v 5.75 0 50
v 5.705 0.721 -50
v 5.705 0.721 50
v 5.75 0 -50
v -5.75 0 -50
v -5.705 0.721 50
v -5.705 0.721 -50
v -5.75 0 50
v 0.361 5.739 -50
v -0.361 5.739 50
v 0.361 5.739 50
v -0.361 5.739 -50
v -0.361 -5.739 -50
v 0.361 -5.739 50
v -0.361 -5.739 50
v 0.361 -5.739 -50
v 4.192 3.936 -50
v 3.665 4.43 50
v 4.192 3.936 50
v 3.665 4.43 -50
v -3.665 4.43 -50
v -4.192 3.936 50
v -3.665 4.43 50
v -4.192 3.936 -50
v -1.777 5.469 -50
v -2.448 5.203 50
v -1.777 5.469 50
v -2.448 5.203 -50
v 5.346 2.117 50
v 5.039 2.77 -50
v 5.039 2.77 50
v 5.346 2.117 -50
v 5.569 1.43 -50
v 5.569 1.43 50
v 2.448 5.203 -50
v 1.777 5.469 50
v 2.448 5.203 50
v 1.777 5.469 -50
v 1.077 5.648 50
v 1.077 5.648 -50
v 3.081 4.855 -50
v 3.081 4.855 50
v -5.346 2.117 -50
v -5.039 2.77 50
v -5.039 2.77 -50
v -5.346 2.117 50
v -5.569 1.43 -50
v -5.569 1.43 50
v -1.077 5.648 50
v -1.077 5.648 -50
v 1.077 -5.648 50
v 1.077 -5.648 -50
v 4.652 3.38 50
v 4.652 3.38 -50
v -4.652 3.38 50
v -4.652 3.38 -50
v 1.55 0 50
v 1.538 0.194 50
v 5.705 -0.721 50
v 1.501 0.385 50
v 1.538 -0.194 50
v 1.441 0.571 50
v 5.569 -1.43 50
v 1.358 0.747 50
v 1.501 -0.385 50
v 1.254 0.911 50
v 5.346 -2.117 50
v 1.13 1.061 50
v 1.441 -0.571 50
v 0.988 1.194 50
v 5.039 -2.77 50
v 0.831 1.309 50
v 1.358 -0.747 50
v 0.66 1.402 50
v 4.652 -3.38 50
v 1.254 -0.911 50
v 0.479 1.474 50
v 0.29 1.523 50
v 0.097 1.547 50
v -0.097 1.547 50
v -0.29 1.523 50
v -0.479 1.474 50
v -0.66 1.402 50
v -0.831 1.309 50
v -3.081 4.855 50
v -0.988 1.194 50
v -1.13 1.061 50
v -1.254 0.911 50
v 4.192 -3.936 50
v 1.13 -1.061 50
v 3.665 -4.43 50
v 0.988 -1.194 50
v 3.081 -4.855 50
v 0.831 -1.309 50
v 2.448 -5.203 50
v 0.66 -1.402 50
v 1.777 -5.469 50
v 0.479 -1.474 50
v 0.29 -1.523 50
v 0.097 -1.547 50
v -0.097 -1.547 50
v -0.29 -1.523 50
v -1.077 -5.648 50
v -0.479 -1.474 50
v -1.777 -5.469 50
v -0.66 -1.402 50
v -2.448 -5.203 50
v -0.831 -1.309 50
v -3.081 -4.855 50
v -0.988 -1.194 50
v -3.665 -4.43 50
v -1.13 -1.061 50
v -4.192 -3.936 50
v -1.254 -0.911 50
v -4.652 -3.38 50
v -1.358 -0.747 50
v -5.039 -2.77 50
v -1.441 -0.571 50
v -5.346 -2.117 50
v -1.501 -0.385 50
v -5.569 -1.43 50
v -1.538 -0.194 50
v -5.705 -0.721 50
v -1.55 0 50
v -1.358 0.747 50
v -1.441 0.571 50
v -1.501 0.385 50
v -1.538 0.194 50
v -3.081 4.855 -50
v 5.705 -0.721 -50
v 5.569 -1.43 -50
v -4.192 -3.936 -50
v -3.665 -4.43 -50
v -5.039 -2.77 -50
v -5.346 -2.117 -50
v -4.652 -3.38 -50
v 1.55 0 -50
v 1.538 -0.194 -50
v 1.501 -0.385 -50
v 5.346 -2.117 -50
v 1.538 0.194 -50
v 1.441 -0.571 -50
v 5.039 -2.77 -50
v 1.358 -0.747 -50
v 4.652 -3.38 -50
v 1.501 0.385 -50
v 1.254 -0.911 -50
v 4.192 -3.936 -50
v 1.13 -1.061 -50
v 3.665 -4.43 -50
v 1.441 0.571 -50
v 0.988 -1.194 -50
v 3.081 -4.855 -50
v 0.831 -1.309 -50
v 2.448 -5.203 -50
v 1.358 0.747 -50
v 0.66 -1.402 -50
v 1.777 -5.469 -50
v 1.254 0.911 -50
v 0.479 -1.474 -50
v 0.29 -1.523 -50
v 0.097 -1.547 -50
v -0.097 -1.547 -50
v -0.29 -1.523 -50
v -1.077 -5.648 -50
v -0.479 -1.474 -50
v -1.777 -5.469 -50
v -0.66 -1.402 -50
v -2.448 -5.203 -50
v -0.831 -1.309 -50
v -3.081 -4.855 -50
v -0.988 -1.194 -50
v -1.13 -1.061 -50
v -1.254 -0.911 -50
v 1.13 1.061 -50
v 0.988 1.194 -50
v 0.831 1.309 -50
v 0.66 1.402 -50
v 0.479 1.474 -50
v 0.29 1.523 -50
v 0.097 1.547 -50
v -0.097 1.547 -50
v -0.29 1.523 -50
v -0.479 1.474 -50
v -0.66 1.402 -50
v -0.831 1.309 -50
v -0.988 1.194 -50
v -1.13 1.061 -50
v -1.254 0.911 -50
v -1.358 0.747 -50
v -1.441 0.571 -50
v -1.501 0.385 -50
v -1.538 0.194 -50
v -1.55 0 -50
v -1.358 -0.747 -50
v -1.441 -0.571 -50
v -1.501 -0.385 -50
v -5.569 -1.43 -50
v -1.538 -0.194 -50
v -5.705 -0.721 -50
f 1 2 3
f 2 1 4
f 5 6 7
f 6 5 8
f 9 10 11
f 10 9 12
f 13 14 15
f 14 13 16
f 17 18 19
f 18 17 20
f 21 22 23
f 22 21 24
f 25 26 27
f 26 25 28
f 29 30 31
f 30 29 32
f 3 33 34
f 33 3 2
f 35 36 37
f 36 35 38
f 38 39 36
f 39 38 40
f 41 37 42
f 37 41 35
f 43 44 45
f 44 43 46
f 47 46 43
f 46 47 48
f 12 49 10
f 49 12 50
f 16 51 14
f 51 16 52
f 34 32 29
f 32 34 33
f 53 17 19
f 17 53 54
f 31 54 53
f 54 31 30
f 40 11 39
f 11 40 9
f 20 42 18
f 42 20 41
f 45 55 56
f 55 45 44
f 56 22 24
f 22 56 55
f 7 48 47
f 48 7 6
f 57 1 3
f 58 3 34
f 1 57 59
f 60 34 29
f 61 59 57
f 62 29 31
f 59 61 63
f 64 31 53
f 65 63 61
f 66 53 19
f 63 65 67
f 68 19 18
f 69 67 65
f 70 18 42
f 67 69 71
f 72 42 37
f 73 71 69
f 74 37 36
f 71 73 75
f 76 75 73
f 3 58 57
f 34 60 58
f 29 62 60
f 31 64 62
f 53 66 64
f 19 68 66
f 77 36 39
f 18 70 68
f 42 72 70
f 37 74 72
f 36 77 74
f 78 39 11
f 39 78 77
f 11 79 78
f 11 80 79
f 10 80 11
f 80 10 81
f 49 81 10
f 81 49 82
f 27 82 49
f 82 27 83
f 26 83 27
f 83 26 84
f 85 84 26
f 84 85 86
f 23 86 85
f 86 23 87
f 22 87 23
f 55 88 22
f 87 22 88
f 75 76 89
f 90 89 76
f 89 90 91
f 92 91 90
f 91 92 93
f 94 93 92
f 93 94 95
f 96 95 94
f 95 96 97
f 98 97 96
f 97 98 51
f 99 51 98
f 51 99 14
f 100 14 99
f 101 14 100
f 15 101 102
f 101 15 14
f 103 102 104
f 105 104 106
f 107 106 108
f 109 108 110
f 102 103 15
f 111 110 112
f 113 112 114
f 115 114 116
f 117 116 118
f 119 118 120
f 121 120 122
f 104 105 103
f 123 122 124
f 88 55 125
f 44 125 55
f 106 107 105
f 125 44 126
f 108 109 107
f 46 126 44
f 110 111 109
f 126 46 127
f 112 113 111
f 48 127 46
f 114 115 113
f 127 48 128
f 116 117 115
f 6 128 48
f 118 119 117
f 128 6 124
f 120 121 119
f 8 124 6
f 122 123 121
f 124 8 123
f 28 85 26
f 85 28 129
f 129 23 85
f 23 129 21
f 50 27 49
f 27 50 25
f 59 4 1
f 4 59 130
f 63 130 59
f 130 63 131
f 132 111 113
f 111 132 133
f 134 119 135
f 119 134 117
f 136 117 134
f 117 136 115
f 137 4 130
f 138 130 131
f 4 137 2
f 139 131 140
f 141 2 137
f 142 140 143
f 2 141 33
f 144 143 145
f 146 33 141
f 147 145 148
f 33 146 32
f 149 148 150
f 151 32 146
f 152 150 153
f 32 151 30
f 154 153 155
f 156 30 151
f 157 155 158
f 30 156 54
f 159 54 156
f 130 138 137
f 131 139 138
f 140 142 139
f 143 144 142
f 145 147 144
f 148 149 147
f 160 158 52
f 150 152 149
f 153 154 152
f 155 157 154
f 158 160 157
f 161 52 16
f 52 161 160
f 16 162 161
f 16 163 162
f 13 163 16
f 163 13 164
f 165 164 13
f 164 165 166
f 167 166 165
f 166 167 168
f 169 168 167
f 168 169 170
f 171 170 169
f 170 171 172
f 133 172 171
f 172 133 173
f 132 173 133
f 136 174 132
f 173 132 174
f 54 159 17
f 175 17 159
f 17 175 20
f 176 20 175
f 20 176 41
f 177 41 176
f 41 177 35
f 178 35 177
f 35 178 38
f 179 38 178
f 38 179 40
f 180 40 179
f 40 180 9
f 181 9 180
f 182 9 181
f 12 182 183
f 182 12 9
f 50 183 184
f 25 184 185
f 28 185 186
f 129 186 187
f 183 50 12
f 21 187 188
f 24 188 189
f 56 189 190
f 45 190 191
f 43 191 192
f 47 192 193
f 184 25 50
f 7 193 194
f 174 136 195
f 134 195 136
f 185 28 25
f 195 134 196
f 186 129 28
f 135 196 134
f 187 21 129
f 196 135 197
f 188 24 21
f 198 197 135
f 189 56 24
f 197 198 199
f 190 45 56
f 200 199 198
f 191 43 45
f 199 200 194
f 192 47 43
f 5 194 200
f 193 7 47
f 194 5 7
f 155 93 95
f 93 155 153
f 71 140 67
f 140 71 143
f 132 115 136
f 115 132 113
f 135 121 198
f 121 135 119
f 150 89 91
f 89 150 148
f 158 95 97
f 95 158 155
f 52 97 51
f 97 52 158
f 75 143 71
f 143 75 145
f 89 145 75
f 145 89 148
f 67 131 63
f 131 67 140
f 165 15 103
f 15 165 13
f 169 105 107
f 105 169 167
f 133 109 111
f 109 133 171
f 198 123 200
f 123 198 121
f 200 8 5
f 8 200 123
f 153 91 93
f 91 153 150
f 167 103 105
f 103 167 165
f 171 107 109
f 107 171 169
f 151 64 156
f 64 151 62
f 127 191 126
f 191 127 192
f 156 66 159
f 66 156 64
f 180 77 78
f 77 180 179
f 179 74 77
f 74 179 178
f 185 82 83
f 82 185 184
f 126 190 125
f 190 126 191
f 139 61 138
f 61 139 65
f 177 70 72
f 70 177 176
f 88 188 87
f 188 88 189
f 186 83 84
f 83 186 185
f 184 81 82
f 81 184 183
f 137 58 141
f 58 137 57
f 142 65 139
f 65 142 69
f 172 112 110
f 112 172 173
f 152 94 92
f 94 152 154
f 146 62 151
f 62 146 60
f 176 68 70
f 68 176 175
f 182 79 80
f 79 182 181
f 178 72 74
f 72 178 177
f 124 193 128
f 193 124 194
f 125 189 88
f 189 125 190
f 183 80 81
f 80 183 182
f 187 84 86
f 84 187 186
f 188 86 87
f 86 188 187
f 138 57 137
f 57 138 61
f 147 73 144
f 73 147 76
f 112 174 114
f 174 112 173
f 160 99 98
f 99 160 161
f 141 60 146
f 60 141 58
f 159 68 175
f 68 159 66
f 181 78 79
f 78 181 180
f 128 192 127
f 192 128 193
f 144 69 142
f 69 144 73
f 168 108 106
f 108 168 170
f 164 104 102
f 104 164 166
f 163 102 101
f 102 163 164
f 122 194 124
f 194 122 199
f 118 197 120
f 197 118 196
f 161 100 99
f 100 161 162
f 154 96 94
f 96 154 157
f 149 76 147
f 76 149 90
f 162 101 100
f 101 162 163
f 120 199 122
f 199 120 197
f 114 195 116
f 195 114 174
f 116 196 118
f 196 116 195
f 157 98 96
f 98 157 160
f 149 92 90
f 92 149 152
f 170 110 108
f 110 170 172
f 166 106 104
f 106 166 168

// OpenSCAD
$fn = 50;


difference() {
	union() {
		translate(v = [0, 0, -50.0000000000]) {
			cylinder(h = 100, r = 5.7500000000);
		}
	}
	union() {
		translate(v = [0, 0, -100.0000000000]) {
			cylinder(h = 200, r = 1.5500000000);
		}
	}
}
